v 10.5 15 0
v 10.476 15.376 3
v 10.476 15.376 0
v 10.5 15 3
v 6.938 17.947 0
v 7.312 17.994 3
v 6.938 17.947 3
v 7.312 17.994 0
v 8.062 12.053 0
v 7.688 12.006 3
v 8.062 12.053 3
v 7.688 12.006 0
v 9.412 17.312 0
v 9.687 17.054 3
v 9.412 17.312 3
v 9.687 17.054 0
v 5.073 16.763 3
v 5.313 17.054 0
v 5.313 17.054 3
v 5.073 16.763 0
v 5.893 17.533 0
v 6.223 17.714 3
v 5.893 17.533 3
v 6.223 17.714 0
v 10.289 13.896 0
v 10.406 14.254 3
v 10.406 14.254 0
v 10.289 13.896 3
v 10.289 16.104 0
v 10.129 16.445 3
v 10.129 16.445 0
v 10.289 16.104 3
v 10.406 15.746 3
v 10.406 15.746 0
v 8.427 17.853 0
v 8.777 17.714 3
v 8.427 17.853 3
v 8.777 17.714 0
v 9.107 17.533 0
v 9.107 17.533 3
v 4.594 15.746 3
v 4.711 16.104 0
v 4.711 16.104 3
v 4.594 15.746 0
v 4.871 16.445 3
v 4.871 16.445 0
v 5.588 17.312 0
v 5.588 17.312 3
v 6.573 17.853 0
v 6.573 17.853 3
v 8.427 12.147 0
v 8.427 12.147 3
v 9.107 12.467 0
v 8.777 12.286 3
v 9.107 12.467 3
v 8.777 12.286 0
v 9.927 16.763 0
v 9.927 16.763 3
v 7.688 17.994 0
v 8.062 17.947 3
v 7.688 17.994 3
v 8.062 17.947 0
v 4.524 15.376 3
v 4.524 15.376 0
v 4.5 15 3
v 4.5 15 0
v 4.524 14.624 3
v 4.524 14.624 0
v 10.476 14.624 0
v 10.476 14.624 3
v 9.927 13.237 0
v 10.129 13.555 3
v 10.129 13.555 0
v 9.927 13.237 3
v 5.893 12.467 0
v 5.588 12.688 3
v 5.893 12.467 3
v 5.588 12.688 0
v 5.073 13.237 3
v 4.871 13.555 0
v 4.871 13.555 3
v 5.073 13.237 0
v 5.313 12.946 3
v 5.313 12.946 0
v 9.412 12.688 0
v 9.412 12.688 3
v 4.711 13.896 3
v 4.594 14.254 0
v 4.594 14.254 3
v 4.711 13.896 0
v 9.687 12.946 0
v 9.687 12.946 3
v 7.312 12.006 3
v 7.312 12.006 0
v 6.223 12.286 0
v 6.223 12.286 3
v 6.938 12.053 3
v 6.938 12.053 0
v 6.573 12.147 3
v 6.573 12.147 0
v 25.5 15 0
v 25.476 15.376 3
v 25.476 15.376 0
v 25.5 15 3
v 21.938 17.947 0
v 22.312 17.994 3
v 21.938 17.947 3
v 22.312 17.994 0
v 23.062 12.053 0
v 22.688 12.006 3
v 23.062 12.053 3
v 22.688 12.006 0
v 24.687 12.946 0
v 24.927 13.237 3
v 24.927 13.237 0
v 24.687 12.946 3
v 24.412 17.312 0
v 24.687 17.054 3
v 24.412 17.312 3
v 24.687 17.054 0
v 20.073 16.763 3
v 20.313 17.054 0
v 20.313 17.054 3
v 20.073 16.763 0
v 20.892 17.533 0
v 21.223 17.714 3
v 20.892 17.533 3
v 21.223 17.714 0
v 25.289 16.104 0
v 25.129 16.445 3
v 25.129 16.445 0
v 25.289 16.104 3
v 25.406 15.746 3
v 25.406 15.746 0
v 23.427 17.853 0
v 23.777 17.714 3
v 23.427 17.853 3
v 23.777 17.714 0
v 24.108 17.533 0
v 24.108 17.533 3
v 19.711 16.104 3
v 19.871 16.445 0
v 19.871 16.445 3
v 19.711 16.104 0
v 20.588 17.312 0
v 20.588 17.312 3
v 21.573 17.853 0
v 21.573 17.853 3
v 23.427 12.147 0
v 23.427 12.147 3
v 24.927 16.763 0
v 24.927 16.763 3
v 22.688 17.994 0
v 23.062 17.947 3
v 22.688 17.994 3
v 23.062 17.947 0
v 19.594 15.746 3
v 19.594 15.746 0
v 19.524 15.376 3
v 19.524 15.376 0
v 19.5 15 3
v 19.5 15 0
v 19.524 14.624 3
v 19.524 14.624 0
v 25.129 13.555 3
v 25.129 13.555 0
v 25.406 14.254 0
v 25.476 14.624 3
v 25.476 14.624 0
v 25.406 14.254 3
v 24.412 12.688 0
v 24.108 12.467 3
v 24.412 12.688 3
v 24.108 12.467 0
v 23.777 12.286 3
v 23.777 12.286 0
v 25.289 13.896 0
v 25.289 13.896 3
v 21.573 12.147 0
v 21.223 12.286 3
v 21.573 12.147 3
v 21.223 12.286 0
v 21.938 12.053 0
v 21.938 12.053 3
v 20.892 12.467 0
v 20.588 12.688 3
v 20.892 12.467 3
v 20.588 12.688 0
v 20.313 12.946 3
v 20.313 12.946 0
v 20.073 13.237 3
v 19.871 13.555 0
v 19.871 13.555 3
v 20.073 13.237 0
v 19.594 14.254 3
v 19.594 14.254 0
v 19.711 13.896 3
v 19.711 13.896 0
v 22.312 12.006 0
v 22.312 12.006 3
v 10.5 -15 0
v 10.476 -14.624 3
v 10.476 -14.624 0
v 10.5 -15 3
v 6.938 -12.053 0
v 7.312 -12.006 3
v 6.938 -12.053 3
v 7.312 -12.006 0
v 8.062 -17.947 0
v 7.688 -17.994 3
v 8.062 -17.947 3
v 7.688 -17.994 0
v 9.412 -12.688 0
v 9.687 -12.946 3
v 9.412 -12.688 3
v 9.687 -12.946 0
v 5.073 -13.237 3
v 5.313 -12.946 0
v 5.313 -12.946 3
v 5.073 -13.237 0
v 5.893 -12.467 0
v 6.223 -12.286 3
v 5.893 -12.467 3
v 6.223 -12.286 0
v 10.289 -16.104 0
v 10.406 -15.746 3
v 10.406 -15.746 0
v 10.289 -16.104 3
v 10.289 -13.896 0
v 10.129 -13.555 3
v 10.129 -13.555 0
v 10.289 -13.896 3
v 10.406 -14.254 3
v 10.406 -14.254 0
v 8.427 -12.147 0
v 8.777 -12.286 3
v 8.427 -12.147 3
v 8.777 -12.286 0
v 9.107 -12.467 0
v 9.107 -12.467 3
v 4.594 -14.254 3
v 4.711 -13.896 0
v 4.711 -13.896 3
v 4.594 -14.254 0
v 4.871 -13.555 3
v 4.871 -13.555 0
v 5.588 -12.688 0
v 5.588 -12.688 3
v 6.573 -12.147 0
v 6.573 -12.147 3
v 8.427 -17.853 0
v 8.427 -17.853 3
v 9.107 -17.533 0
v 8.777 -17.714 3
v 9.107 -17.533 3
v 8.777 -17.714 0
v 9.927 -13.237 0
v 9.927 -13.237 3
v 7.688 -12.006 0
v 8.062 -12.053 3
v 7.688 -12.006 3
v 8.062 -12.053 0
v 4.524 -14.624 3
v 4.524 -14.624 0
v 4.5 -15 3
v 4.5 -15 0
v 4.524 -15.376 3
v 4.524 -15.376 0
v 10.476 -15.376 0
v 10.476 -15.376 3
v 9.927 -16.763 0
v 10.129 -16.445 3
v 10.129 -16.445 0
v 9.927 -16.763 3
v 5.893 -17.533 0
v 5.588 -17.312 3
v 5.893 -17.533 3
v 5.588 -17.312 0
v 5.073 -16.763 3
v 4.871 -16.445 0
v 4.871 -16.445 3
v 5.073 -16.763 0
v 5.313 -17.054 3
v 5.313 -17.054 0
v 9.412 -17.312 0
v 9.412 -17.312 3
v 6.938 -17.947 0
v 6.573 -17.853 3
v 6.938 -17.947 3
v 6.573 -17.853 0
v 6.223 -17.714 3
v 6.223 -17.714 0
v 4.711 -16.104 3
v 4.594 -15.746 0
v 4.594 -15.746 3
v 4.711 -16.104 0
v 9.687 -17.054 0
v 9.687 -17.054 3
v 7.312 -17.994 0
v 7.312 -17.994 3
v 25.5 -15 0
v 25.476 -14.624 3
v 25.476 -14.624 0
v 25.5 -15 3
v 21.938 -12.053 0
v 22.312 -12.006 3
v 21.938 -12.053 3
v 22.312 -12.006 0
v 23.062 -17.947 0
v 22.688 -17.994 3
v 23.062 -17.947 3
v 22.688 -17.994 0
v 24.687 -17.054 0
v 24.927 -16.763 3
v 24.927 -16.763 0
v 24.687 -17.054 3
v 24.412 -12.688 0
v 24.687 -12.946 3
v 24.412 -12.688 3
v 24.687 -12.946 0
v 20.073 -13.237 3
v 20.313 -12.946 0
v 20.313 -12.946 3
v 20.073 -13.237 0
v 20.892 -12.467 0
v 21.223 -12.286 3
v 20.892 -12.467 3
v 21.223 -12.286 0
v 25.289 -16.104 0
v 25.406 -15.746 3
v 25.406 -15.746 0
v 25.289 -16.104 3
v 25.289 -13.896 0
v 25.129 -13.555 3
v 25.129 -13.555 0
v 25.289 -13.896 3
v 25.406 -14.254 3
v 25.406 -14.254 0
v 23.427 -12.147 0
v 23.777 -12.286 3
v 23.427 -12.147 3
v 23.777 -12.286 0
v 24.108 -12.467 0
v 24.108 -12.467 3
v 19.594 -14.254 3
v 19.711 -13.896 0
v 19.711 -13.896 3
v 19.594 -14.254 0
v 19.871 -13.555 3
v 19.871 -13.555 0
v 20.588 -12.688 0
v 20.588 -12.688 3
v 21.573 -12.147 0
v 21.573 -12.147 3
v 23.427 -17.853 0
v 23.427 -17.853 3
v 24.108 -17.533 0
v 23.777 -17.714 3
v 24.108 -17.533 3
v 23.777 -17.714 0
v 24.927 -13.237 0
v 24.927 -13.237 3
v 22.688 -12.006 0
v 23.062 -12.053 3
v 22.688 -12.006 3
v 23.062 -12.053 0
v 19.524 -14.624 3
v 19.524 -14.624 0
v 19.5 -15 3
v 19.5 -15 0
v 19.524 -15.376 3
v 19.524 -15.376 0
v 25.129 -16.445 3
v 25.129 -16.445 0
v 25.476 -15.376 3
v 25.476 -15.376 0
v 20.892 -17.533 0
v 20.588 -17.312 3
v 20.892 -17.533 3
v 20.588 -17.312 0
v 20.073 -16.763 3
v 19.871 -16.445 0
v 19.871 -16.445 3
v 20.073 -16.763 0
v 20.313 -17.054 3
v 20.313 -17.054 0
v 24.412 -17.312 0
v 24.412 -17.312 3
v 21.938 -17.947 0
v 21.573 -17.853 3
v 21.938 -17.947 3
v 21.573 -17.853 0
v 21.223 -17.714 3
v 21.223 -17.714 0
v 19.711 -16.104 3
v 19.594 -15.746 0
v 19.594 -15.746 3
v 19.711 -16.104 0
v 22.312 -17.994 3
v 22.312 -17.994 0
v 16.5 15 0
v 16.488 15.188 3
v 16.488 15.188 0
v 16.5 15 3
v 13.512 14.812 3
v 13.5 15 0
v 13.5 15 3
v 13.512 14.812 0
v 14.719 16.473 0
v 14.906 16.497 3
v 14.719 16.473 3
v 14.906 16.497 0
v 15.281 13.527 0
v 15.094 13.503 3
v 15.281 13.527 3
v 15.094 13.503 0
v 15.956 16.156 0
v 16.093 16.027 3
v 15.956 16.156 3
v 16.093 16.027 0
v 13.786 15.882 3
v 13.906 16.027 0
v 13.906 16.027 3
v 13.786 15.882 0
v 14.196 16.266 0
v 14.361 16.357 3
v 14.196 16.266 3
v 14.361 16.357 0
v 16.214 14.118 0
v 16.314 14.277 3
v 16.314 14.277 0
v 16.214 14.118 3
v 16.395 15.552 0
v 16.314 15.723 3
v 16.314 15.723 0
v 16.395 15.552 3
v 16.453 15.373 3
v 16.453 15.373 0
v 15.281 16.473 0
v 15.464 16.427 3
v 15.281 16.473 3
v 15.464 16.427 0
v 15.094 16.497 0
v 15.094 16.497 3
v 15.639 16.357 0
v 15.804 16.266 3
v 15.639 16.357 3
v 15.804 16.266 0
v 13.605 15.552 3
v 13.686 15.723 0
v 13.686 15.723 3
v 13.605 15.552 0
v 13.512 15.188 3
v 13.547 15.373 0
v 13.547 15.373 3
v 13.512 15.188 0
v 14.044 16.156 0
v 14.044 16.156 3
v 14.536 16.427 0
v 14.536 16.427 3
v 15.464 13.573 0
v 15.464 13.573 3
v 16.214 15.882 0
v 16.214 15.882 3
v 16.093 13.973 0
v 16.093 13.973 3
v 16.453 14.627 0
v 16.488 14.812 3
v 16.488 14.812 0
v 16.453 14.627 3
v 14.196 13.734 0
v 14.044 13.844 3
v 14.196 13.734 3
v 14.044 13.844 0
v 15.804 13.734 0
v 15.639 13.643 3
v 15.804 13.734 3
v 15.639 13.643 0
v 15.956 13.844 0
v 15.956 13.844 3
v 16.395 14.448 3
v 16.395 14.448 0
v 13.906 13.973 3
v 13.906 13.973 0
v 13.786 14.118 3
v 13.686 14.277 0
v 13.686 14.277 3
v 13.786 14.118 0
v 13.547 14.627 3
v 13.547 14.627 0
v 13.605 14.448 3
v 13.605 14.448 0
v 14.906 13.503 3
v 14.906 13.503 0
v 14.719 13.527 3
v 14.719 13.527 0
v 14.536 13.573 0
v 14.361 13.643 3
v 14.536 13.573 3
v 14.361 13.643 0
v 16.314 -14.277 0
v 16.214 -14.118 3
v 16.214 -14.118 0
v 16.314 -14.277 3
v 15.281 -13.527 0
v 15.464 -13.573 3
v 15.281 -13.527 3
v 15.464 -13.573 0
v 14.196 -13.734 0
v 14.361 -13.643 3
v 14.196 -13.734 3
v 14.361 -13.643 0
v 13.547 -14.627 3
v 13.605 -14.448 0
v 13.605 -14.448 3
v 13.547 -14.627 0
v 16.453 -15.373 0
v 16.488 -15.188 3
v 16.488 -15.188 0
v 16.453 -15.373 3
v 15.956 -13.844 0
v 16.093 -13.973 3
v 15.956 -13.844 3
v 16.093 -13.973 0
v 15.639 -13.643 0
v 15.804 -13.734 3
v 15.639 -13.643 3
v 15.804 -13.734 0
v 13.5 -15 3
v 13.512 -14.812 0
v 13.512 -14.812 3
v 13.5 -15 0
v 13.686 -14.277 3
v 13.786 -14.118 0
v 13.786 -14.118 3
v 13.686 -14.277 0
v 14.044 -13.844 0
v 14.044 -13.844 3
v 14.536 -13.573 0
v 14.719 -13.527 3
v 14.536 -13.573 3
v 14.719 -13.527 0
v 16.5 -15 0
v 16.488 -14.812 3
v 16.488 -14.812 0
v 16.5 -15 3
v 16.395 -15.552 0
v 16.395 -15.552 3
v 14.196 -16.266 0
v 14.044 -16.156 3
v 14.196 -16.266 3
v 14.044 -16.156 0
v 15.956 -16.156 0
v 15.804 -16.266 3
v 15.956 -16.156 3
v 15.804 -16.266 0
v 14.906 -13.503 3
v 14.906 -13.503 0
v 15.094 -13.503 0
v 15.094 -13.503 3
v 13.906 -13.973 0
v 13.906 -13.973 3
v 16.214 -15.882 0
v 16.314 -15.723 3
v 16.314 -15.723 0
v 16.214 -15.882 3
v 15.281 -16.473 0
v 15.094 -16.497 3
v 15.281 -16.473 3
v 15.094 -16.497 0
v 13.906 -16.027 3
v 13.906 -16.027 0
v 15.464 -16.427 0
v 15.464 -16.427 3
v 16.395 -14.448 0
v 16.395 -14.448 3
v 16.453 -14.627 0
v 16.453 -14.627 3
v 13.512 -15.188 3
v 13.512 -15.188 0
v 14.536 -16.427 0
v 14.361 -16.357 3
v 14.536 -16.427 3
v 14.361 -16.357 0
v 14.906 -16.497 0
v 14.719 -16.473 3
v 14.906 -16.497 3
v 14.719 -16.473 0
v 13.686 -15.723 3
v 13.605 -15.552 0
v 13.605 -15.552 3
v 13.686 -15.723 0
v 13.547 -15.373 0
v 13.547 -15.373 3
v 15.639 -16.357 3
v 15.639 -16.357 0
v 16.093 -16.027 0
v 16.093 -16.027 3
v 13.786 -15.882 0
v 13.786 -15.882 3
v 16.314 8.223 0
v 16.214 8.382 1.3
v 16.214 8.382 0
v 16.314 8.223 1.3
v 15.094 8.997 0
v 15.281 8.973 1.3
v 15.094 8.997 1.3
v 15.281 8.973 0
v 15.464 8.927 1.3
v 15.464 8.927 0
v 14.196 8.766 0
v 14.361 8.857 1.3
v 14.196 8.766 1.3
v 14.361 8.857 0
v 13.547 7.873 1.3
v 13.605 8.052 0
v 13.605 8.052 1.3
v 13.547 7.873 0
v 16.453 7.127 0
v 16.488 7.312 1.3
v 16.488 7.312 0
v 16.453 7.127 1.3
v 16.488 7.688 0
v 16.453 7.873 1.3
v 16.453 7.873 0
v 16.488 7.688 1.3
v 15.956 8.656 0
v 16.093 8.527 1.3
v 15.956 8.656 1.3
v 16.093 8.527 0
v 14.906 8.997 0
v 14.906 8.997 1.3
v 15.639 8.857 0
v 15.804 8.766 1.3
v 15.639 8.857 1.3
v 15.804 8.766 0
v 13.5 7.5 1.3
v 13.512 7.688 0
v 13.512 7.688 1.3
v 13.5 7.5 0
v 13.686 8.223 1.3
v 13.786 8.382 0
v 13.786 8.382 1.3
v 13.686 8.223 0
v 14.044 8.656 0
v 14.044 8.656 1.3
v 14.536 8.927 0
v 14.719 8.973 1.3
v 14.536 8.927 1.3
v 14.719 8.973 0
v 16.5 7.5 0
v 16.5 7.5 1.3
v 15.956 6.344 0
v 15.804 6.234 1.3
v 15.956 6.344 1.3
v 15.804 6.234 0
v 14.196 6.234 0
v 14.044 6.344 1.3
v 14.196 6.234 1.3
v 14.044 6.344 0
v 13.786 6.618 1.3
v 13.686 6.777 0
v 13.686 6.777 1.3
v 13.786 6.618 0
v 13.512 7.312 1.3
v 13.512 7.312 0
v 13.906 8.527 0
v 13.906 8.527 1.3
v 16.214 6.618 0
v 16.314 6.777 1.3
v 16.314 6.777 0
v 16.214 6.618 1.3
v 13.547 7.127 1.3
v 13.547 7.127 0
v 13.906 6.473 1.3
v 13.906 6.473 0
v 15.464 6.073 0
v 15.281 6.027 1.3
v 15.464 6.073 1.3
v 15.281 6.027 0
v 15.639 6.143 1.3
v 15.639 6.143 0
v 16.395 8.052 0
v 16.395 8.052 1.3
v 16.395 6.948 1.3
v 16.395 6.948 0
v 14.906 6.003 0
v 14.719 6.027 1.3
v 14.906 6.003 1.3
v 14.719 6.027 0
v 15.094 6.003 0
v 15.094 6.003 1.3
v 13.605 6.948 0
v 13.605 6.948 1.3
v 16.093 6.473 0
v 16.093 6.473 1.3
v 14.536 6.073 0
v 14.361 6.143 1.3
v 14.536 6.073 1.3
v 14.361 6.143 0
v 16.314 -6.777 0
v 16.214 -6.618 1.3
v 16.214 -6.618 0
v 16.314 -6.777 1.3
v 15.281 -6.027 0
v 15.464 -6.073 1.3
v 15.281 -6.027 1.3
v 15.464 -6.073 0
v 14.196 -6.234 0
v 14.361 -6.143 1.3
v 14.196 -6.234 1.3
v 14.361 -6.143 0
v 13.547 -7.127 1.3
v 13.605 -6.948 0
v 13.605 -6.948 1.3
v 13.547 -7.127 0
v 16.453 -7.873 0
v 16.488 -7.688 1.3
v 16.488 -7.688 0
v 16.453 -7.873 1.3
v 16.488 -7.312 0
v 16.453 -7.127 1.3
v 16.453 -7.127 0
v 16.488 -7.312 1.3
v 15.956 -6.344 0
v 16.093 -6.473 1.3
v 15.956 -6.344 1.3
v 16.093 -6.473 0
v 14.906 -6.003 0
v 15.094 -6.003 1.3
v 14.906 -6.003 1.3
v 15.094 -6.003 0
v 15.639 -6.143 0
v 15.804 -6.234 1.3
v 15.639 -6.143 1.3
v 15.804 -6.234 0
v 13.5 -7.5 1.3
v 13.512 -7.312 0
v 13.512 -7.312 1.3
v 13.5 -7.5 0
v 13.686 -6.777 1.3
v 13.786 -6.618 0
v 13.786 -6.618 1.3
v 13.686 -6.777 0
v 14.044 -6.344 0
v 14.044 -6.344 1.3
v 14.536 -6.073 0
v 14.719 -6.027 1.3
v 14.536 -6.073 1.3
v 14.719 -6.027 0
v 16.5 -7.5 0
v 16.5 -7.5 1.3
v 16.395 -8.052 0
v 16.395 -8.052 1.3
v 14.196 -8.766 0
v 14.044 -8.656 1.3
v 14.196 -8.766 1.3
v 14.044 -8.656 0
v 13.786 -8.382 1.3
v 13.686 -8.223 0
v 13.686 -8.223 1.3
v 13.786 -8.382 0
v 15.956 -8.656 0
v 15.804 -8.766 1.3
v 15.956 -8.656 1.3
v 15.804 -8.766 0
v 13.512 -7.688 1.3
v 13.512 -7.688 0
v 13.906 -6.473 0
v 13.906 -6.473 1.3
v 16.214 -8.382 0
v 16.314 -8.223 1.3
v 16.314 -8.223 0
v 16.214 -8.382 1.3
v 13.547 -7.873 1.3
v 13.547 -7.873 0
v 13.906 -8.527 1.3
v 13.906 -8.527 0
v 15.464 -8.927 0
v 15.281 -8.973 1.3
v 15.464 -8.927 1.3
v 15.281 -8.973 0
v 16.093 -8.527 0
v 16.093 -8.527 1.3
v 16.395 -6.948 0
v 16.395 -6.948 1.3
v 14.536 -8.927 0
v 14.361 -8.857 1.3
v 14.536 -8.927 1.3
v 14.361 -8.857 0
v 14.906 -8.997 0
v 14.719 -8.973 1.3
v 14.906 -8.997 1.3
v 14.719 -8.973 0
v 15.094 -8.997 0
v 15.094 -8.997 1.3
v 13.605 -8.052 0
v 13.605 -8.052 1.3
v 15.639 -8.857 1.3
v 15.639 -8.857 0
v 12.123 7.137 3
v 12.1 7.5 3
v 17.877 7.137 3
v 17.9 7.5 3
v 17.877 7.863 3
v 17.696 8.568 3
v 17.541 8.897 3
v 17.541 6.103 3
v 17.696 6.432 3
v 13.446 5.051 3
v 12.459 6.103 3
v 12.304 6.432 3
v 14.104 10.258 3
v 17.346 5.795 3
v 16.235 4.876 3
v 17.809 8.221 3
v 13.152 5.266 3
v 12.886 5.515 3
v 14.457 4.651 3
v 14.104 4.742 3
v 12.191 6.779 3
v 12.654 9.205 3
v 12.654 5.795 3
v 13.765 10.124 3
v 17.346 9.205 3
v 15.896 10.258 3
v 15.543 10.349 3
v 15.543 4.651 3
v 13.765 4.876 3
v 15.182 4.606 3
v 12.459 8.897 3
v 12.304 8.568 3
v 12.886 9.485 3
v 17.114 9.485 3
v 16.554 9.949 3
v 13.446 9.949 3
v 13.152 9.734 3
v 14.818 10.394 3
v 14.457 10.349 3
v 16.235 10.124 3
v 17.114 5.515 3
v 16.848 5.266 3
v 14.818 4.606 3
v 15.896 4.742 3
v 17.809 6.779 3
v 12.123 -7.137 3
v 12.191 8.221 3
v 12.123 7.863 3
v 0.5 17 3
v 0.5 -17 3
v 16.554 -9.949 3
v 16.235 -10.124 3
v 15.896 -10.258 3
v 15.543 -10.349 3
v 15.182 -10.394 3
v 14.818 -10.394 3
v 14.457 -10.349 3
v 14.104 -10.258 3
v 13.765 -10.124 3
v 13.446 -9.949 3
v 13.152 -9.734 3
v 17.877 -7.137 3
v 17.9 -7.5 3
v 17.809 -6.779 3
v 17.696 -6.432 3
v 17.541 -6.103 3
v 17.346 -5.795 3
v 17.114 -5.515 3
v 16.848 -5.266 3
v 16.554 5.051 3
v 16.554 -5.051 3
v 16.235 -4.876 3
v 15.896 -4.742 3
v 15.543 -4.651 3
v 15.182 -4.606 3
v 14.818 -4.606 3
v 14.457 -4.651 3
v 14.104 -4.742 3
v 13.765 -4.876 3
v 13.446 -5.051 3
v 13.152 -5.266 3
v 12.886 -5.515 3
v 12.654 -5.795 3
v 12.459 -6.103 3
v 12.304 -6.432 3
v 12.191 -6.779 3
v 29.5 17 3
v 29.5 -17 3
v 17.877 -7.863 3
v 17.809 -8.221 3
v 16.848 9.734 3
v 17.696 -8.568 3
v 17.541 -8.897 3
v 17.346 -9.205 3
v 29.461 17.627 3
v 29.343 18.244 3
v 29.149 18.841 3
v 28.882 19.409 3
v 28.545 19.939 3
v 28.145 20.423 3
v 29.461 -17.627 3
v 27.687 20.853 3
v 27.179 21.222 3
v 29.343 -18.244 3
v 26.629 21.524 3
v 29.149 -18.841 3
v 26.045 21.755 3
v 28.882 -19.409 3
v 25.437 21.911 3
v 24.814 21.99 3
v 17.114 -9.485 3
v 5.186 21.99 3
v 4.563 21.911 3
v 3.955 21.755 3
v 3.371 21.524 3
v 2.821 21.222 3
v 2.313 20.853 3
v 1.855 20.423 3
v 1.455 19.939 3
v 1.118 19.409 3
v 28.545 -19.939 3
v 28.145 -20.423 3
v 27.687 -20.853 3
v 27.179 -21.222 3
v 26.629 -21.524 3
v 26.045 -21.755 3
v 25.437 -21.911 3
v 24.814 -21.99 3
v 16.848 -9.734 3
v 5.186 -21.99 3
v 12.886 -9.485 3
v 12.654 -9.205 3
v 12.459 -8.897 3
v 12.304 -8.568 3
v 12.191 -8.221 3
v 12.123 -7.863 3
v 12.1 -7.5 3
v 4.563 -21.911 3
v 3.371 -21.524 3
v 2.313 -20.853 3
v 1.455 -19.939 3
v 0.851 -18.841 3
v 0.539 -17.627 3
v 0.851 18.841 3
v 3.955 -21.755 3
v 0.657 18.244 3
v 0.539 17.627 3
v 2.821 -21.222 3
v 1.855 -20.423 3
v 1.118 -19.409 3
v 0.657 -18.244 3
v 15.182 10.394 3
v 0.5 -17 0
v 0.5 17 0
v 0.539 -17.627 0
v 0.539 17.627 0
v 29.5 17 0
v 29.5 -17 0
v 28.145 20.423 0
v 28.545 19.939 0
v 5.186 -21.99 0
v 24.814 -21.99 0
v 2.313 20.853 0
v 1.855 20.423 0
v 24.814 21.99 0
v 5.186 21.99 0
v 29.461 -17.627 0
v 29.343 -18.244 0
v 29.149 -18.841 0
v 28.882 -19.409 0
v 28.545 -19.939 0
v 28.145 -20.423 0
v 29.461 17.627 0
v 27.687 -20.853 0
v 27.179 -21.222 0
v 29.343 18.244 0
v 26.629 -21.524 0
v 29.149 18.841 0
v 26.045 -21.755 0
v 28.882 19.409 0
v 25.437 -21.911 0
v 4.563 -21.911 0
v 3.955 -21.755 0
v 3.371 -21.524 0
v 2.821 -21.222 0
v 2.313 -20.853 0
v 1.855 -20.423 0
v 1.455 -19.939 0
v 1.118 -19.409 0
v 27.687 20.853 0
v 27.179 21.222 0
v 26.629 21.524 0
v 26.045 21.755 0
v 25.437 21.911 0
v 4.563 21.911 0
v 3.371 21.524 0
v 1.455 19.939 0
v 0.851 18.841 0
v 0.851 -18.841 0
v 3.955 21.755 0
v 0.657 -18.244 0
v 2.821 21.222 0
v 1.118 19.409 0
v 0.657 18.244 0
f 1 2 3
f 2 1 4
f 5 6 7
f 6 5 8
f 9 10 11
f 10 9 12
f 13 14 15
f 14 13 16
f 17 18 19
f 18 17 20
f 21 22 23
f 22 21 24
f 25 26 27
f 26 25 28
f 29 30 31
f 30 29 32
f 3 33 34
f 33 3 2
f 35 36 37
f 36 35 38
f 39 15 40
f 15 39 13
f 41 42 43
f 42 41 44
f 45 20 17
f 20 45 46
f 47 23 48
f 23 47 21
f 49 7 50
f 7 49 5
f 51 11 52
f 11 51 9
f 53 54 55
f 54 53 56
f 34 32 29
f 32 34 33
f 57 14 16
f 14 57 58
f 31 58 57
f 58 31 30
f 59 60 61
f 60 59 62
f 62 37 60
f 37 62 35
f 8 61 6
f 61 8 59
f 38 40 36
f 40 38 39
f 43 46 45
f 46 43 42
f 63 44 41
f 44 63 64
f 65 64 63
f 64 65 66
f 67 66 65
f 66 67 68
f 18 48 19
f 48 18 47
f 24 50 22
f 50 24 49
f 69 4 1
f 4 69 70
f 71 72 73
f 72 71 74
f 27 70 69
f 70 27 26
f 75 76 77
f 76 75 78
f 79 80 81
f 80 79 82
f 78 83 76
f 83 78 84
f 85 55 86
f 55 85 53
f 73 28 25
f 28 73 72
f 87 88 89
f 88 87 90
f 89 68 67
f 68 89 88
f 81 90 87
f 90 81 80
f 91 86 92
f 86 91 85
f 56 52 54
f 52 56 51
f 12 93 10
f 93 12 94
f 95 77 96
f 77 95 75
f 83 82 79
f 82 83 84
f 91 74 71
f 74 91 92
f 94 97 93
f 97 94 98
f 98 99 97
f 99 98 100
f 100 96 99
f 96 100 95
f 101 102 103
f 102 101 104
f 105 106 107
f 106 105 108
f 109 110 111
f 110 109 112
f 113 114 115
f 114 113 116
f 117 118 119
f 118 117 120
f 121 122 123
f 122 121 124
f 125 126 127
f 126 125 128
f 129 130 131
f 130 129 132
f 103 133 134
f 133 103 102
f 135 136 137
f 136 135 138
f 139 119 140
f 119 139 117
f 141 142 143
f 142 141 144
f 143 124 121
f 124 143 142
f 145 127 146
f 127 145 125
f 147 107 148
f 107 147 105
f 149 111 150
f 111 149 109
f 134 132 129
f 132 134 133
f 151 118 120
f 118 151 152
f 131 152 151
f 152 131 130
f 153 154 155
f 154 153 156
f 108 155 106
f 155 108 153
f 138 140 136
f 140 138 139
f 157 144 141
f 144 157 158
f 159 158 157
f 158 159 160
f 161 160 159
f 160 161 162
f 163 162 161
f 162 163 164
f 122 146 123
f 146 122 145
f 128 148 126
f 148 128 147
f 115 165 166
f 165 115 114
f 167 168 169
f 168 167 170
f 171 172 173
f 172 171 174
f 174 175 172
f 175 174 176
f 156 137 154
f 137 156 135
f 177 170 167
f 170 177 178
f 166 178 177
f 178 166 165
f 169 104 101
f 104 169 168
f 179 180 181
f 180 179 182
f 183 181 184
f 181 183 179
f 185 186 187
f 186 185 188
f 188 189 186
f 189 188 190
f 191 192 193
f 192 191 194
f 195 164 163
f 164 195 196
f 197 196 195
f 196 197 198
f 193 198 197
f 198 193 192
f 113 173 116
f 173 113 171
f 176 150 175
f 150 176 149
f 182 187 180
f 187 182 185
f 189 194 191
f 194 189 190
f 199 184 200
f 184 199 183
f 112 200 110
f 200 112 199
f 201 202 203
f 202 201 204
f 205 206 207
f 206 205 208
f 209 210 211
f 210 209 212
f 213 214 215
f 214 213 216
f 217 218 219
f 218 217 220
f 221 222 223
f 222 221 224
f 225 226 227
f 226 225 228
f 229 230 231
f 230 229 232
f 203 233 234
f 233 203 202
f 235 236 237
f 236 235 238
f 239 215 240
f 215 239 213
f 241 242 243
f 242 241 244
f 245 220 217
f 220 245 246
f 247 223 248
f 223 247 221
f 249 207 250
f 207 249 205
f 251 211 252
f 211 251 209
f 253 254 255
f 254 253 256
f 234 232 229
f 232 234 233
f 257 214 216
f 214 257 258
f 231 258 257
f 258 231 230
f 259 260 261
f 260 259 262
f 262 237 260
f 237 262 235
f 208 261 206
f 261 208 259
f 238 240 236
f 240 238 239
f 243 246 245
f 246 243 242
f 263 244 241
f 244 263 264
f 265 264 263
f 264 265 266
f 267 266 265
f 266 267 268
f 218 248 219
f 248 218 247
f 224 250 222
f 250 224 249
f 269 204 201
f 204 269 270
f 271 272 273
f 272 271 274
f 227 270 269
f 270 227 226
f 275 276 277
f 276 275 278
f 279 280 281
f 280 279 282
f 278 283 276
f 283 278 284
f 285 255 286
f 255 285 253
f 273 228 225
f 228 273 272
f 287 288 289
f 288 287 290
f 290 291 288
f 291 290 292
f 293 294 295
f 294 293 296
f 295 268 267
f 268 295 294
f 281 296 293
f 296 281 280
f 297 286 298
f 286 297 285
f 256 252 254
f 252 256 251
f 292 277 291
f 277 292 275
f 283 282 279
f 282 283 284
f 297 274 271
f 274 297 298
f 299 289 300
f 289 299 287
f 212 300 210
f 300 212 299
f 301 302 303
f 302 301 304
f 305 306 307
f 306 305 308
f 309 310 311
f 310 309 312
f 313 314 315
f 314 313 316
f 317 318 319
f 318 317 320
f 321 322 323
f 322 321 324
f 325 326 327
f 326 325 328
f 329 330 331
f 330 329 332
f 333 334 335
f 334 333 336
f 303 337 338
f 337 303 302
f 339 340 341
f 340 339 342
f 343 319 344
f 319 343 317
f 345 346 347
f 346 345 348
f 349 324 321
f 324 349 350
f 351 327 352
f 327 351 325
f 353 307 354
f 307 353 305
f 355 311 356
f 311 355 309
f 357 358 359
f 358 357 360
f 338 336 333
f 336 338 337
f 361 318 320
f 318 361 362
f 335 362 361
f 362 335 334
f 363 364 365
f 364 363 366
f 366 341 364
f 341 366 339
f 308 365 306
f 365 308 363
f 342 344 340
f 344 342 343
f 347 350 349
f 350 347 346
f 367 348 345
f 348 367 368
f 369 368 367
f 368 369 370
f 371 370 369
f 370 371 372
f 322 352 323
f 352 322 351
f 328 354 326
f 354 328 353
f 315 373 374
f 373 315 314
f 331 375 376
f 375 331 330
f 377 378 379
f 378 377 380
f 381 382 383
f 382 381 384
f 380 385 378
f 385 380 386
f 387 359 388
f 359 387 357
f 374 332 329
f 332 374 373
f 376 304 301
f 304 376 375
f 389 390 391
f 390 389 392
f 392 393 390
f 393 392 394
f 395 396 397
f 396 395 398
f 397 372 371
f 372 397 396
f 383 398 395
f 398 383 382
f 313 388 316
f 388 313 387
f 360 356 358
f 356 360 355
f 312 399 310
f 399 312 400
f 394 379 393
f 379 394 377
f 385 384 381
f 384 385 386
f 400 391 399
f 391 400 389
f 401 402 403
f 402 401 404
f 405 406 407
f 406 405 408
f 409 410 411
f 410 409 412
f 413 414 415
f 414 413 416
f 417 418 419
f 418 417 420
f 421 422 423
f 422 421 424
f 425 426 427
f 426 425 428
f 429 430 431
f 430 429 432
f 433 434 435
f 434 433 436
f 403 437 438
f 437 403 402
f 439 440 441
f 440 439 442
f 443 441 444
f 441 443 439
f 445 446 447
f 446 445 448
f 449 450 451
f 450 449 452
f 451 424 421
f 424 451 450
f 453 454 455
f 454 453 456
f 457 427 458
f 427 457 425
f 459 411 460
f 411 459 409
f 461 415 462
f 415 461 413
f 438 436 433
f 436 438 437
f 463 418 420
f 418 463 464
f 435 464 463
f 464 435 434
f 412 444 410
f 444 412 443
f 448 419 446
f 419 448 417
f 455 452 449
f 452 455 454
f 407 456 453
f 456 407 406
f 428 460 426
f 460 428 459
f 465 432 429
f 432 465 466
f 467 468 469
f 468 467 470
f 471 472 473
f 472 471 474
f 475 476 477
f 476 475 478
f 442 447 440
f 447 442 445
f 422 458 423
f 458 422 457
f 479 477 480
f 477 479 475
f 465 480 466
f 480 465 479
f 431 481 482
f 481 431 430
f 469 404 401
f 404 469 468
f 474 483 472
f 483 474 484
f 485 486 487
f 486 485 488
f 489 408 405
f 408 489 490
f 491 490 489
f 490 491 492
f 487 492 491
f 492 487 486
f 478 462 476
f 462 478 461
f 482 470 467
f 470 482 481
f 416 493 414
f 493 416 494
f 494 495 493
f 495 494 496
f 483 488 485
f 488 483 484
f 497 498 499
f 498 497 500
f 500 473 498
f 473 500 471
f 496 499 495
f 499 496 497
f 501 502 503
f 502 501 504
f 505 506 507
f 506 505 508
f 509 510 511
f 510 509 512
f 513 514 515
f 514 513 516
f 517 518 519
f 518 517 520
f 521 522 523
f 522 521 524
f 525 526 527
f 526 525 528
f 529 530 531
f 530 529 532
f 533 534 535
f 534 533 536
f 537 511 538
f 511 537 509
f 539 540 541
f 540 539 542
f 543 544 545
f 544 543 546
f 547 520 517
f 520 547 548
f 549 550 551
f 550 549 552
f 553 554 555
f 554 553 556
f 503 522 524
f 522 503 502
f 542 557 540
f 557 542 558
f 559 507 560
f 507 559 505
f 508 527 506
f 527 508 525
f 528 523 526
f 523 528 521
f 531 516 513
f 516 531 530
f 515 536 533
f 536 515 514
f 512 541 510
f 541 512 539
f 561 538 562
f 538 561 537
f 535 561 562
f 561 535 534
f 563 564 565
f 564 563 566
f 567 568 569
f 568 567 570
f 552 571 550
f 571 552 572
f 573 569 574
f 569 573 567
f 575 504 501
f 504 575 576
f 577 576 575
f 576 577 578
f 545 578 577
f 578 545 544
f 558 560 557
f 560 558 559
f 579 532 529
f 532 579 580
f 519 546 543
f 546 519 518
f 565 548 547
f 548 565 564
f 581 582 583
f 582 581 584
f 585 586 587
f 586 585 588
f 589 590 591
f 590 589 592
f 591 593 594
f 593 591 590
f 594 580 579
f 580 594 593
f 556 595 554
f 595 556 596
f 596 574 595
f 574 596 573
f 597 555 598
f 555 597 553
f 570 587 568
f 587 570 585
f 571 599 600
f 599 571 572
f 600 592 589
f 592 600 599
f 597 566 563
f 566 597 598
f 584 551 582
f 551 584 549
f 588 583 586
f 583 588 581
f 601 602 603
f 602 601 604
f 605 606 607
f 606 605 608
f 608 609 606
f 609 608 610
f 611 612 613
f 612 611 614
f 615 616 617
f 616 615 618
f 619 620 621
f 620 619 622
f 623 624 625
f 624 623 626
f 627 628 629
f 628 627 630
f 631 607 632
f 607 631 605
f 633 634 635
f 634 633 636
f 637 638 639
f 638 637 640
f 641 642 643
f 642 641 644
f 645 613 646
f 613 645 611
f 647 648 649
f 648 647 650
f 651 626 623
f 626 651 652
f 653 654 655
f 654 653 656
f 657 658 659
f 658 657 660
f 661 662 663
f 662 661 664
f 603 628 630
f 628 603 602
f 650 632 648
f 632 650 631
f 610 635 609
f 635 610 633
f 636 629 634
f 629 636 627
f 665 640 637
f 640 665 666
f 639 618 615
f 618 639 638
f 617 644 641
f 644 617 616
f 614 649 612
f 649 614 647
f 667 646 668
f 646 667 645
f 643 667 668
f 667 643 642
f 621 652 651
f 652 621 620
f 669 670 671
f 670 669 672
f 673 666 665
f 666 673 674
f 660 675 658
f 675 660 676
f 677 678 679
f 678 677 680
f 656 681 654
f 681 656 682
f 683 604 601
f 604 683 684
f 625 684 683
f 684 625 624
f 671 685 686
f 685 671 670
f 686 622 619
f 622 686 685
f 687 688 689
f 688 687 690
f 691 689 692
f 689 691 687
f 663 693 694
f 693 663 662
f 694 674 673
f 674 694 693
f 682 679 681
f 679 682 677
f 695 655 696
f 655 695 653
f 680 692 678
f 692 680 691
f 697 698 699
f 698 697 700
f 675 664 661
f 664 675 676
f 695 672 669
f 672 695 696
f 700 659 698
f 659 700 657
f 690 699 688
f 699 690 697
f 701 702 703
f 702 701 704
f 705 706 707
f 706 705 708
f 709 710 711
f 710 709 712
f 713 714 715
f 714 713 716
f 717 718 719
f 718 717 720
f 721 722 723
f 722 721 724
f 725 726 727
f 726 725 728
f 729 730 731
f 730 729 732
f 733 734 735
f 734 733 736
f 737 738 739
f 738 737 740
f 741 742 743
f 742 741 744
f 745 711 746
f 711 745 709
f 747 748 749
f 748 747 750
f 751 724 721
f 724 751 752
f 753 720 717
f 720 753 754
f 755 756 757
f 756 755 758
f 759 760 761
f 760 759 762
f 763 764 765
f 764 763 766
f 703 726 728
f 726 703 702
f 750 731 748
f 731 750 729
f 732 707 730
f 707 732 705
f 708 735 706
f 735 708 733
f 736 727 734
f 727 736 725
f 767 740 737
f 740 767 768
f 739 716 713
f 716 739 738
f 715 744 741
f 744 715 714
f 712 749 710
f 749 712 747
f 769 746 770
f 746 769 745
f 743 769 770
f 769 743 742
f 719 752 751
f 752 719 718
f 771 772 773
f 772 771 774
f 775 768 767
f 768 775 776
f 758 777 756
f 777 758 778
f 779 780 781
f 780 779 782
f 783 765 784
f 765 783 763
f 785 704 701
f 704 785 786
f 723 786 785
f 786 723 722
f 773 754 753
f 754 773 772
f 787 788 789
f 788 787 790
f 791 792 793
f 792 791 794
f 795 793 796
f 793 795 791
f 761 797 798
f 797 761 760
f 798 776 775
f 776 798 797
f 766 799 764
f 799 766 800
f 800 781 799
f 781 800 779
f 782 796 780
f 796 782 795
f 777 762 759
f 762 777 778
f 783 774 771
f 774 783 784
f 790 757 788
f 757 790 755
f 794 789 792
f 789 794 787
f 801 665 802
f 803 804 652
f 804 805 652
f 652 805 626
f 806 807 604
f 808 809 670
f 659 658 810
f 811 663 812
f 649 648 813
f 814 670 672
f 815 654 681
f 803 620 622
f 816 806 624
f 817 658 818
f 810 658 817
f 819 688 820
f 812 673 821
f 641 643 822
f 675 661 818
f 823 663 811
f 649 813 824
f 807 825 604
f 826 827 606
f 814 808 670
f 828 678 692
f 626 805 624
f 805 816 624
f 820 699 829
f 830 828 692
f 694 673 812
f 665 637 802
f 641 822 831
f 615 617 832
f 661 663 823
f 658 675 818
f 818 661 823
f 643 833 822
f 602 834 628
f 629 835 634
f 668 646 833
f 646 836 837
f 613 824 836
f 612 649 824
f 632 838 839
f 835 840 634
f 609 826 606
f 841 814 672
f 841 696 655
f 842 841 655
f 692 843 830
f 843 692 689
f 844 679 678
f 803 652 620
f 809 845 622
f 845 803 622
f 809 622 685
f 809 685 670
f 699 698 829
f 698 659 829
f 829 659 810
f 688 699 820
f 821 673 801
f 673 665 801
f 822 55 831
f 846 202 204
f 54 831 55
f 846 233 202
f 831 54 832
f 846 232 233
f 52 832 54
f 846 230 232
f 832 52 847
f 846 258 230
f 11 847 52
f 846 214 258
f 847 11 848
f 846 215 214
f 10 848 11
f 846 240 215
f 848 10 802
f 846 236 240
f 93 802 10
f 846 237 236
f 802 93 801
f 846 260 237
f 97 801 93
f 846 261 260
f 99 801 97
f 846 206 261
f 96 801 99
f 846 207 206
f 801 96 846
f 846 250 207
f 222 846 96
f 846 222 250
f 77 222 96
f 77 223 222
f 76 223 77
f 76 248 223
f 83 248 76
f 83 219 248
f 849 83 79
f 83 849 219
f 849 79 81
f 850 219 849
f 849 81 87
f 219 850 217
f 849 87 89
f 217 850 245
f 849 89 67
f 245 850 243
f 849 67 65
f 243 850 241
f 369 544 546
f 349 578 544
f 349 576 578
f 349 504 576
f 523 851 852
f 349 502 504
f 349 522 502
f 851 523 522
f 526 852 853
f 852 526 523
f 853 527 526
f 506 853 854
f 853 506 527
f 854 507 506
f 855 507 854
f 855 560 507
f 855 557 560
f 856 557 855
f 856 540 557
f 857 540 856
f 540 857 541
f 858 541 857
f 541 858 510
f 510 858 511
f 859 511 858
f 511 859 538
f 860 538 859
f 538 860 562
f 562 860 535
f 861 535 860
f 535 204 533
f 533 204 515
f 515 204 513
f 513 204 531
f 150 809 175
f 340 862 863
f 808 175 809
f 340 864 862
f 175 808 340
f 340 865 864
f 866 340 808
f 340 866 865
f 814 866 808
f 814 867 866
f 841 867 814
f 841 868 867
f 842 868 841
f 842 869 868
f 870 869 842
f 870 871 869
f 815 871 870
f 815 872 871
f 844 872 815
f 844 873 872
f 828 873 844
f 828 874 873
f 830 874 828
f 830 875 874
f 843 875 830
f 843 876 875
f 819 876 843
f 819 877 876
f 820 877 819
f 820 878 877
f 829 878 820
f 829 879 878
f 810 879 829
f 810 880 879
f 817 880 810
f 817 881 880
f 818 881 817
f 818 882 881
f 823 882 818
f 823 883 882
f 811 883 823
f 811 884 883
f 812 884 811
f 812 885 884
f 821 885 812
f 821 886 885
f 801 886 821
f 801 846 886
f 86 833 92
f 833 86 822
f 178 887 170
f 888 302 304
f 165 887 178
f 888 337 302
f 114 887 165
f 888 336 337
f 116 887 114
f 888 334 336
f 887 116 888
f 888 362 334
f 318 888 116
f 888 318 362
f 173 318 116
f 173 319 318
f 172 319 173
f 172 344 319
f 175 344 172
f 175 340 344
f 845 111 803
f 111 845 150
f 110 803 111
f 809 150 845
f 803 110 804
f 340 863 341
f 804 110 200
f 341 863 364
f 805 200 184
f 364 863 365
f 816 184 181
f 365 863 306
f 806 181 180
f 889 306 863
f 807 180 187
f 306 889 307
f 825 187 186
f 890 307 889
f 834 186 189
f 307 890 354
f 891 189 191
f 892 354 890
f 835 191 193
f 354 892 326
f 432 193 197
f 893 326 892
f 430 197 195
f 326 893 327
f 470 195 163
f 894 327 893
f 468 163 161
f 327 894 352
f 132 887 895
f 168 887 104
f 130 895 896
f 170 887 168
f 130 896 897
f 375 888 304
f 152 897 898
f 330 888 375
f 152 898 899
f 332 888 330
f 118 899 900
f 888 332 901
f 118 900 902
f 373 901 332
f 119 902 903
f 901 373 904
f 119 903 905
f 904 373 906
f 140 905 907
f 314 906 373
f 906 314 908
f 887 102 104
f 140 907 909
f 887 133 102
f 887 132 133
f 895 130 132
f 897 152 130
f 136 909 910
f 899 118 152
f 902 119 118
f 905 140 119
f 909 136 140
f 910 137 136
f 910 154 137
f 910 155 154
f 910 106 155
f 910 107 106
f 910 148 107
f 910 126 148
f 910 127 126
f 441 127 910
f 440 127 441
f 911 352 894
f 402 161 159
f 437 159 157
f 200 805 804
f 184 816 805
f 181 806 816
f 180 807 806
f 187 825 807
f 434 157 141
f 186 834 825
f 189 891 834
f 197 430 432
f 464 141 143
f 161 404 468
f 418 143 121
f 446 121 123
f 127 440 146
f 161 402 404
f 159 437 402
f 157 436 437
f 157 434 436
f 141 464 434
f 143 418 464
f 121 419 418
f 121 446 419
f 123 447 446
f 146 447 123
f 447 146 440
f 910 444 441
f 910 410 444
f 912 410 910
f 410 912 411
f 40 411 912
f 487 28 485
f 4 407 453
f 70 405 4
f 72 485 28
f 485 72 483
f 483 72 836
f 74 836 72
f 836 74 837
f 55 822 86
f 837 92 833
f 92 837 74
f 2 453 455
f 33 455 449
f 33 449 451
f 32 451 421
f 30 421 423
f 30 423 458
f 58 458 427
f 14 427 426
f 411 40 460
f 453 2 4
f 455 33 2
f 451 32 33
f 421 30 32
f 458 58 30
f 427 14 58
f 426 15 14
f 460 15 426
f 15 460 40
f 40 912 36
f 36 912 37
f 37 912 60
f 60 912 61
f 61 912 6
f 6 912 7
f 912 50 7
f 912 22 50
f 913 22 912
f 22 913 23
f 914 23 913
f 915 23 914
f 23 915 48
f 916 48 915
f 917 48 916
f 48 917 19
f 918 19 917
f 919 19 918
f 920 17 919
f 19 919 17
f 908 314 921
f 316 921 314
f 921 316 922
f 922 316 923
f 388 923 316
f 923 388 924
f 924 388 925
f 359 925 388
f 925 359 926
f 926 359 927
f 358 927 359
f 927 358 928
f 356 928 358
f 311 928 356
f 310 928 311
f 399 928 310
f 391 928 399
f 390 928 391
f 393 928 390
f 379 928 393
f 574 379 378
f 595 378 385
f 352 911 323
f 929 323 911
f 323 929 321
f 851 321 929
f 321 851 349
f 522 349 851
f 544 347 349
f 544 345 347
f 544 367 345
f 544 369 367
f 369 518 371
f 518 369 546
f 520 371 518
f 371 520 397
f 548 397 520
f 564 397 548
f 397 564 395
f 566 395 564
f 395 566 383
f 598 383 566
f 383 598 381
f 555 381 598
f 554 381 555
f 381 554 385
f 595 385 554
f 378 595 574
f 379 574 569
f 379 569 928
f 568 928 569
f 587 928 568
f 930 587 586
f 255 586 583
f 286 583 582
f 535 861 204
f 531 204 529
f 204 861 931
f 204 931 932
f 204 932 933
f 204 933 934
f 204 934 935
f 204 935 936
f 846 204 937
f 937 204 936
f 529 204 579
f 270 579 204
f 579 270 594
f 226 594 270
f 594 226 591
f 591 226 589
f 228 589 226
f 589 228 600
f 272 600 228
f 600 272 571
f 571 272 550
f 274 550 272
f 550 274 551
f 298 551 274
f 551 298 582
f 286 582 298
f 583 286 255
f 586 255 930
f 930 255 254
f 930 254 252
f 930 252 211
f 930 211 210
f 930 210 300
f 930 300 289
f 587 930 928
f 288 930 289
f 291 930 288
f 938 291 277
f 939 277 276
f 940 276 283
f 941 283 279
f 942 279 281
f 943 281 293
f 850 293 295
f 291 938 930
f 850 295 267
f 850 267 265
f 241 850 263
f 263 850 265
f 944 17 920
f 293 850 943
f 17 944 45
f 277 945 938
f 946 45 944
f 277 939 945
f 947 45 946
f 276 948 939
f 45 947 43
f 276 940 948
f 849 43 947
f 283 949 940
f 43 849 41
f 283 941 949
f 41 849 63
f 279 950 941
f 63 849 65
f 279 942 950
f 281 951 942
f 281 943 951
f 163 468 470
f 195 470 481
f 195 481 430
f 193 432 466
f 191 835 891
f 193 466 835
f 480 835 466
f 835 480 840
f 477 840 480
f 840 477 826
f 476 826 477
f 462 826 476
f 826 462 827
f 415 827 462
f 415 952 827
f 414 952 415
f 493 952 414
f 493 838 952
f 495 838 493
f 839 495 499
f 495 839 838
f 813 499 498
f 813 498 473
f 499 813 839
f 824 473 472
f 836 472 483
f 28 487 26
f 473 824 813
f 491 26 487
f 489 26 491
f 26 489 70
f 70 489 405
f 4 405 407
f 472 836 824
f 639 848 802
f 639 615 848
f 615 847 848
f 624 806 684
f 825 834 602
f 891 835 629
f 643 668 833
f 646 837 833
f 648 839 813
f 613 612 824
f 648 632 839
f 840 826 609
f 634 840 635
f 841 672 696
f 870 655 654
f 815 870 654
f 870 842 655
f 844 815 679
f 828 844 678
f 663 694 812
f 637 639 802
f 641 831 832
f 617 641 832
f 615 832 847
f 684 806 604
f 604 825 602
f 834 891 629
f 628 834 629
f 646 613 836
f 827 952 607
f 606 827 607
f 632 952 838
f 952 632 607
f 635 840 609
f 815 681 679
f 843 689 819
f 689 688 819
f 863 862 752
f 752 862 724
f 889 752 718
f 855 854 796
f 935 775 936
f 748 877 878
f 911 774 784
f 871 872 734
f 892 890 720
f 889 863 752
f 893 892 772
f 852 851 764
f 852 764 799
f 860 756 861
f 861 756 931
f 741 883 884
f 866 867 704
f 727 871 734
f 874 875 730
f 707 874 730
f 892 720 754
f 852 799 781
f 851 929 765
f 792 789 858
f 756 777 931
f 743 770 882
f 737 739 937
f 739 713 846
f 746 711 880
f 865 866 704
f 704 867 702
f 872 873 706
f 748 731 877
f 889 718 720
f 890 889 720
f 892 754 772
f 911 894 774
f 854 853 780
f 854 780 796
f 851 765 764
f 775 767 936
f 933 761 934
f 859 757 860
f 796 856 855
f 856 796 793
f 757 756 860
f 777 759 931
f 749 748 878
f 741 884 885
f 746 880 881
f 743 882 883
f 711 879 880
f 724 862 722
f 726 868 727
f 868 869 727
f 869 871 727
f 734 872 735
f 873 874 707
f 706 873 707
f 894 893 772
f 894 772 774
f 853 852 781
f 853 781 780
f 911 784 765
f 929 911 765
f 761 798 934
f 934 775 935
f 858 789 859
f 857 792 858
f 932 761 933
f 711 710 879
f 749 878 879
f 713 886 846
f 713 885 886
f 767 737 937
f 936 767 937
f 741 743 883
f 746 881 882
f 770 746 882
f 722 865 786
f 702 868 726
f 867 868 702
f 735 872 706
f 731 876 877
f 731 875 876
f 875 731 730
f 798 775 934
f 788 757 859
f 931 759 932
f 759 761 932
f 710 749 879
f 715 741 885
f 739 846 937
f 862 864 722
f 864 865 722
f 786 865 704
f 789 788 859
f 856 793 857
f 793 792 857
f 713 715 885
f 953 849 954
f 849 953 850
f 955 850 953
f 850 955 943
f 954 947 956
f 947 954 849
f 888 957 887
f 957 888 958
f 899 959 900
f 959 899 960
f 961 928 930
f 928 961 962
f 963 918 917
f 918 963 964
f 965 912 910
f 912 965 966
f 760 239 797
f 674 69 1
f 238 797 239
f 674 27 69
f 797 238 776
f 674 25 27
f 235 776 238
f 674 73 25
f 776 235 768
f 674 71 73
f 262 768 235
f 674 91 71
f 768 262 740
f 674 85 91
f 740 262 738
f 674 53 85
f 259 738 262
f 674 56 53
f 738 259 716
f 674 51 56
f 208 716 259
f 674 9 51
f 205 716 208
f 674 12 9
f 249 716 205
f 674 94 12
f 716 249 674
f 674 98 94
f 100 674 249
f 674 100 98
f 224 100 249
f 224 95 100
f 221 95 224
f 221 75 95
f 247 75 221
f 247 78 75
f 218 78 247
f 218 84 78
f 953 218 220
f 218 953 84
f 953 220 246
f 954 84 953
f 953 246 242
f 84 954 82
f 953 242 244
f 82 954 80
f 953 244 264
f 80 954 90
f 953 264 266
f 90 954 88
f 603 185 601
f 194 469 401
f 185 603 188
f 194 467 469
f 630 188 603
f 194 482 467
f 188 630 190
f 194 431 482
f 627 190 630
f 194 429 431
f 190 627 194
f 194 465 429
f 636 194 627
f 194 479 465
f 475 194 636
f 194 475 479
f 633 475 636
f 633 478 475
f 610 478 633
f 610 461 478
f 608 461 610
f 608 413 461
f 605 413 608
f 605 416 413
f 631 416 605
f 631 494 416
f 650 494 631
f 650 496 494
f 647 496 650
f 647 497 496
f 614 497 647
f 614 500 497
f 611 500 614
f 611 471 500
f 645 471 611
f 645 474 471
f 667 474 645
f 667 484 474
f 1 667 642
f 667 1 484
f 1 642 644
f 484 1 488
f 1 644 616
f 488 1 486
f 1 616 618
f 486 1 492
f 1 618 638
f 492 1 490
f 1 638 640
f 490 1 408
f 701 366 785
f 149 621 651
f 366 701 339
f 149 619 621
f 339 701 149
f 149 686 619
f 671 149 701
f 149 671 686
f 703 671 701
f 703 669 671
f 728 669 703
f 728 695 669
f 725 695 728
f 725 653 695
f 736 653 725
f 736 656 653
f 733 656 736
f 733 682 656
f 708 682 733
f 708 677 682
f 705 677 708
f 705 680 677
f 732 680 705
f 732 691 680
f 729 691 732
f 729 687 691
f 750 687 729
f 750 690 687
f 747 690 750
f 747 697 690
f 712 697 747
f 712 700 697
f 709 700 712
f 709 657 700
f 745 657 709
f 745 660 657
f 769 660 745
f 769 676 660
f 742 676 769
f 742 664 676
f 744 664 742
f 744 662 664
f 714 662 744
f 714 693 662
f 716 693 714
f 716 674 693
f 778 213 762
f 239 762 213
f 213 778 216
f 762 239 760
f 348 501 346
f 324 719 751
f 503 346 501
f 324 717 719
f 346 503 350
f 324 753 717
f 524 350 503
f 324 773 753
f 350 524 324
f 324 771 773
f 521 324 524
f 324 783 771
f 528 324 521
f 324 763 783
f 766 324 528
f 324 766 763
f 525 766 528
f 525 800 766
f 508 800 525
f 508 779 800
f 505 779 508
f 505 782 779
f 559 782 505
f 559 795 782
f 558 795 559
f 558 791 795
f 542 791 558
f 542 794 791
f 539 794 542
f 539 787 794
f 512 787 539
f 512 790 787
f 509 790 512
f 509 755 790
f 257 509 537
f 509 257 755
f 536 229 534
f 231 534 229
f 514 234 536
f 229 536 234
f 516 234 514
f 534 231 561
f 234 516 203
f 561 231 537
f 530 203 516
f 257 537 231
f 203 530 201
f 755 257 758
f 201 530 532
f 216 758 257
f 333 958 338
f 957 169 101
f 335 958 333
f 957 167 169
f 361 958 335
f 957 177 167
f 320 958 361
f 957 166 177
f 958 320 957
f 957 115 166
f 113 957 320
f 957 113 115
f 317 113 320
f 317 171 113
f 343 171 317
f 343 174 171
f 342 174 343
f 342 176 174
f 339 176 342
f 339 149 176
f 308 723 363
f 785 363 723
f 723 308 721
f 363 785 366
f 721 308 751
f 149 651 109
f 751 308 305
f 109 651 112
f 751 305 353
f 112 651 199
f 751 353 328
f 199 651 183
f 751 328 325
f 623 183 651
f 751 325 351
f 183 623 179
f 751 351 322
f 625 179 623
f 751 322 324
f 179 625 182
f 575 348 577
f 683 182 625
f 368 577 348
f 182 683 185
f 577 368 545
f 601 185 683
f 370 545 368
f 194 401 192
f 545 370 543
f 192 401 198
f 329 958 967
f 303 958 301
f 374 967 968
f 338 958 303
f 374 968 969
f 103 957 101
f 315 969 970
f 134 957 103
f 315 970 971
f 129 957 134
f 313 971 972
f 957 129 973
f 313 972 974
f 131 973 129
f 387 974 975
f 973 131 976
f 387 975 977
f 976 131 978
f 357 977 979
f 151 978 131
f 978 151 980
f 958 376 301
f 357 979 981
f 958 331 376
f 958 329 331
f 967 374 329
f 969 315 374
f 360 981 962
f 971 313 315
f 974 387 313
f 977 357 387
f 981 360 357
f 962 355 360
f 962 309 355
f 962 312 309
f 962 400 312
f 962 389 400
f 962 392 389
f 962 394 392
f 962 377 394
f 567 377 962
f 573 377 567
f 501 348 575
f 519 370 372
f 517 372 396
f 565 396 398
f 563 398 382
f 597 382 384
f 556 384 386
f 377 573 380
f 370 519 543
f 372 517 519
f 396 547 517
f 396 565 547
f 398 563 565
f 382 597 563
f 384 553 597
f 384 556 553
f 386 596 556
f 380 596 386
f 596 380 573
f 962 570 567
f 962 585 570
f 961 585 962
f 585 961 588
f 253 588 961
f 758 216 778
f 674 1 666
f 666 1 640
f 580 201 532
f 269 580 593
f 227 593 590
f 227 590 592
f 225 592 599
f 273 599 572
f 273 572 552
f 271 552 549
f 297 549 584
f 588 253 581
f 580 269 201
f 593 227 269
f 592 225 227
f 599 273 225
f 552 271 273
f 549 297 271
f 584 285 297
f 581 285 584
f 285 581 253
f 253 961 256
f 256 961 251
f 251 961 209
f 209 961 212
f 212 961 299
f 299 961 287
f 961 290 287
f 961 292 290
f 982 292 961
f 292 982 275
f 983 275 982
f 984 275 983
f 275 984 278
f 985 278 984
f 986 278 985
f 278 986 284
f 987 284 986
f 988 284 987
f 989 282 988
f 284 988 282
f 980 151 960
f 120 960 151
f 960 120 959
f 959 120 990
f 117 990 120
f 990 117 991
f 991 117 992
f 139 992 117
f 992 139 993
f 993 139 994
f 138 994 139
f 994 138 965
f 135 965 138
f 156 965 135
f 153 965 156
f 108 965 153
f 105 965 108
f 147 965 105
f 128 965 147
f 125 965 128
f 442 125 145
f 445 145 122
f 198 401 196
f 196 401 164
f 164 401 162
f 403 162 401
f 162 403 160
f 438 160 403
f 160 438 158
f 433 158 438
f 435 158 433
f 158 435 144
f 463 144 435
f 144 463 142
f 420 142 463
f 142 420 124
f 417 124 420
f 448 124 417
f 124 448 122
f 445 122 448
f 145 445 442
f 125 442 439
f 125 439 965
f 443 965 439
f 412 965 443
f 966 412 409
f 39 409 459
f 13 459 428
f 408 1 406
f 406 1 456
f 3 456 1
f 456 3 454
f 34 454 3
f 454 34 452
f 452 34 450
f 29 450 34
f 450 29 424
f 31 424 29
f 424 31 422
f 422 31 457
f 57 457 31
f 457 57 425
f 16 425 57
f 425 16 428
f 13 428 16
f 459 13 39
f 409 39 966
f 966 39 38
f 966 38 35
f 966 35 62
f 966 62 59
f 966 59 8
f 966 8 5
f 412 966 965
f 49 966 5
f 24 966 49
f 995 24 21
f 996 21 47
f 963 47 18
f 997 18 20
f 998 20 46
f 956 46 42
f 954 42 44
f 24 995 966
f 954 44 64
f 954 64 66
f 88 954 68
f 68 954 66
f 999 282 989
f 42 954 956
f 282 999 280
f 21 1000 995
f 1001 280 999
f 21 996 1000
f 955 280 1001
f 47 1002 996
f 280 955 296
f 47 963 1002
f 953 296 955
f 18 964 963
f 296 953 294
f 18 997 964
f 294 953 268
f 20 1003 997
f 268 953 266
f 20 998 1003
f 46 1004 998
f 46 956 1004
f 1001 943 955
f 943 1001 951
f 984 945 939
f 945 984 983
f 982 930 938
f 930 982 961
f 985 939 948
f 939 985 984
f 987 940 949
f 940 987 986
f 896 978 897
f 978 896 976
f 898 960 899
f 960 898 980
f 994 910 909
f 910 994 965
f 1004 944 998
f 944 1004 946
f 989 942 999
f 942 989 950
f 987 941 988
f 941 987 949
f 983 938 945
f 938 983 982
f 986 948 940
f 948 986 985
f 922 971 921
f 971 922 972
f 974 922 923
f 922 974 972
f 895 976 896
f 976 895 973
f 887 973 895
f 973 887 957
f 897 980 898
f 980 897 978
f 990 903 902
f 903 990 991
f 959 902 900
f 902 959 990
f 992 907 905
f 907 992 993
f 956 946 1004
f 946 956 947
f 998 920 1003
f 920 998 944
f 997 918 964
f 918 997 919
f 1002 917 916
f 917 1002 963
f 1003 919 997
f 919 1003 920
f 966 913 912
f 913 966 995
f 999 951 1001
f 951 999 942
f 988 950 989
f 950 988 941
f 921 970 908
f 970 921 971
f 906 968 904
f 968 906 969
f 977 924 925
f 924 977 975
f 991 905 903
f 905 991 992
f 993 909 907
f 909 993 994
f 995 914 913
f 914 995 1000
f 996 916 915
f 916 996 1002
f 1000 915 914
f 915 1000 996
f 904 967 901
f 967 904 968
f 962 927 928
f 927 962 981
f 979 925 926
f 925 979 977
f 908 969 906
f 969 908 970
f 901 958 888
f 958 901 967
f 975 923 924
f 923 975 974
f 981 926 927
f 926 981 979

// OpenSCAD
$fn = 50;


difference() {
	union() {
		translate(v = [15.0000000000, 0, 0]) {
			rotate(a = [0, 0, 0]) {
				hull() {
					translate(v = [-9.5000000000, 17.0000000000, 0]) {
						rotate(a = [0, 0, 0]) {
							translate(v = [0, 0, 0]) {
								rotate(a = [0, 0, 0]) {
									cylinder(h = 3, r = 5);
								}
							}
						}
					}
					translate(v = [9.5000000000, 17.0000000000, 0]) {
						rotate(a = [0, 0, 0]) {
							translate(v = [0, 0, 0]) {
								rotate(a = [0, 0, 0]) {
									cylinder(h = 3, r = 5);
								}
							}
						}
					}
					translate(v = [-9.5000000000, -17.0000000000, 0]) {
						rotate(a = [0, 0, 0]) {
							translate(v = [0, 0, 0]) {
								rotate(a = [0, 0, 0]) {
									cylinder(h = 3, r = 5);
								}
							}
						}
					}
					translate(v = [9.5000000000, -17.0000000000, 0]) {
						rotate(a = [0, 0, 0]) {
							translate(v = [0, 0, 0]) {
								rotate(a = [0, 0, 0]) {
									cylinder(h = 3, r = 5);
								}
							}
						}
					}
				}
			}
		}
	}
	union() {
		translate(v = [7.5000000000, 15.0000000000, -125.0000000000]) {
			rotate(a = [0, 0, 0]) {
				cylinder(h = 250, r = 3.0000000000);
			}
		}
		translate(v = [22.5000000000, 15.0000000000, -125.0000000000]) {
			rotate(a = [0, 0, 0]) {
				cylinder(h = 250, r = 3.0000000000);
			}
		}
		translate(v = [7.5000000000, -15.0000000000, -125.0000000000]) {
			rotate(a = [0, 0, 0]) {
				cylinder(h = 250, r = 3.0000000000);
			}
		}
		translate(v = [22.5000000000, -15.0000000000, -125.0000000000]) {
			rotate(a = [0, 0, 0]) {
				cylinder(h = 250, r = 3.0000000000);
			}
		}
		translate(v = [7.5000000000, 15.0000000000, -125.0000000000]) {
			rotate(a = [0, 0, 0]) {
				cylinder(h = 250, r = 1.5000000000);
			}
		}
		translate(v = [15.0000000000, 15.0000000000, -125.0000000000]) {
			rotate(a = [0, 0, 0]) {
				cylinder(h = 250, r = 1.5000000000);
			}
		}
		translate(v = [22.5000000000, 15.0000000000, -125.0000000000]) {
			rotate(a = [0, 0, 0]) {
				cylinder(h = 250, r = 1.5000000000);
			}
		}
		translate(v = [7.5000000000, -15.0000000000, -125.0000000000]) {
			rotate(a = [0, 0, 0]) {
				cylinder(h = 250, r = 1.5000000000);
			}
		}
		translate(v = [15.0000000000, -15.0000000000, -125.0000000000]) {
			rotate(a = [0, 0, 0]) {
				cylinder(h = 250, r = 1.5000000000);
			}
		}
		translate(v = [22.5000000000, -15.0000000000, -125.0000000000]) {
			rotate(a = [0, 0, 0]) {
				cylinder(h = 250, r = 1.5000000000);
			}
		}
		translate(v = [15, 7.5000000000, -125.0000000000]) {
			rotate(a = [0, 0, 0]) {
				cylinder(h = 250, r = 1.5000000000);
			}
		}
		translate(v = [15, -7.5000000000, -125.0000000000]) {
			rotate(a = [0, 0, 0]) {
				cylinder(h = 250, r = 1.5000000000);
			}
		}
		translate(v = [15, 7.5000000000, 1.3000000000]) {
			rotate(a = [0, 0, 0]) {
				cylinder(h = 1.7000000000, r1 = 1.5000000000, r2 = 2.9000000000);
			}
		}
		translate(v = [15, 7.5000000000, -222.0000000000]) {
			rotate(a = [0, 0, 0]) {
				cylinder(h = 250, r = 1.5000000000);
			}
		}
		translate(v = [15, -7.5000000000, 1.3000000000]) {
			rotate(a = [0, 0, 0]) {
				cylinder(h = 1.7000000000, r1 = 1.5000000000, r2 = 2.9000000000);
			}
		}
		translate(v = [15, -7.5000000000, -222.0000000000]) {
			rotate(a = [0, 0, 0]) {
				cylinder(h = 250, r = 1.5000000000);
			}
		}
	}
}
